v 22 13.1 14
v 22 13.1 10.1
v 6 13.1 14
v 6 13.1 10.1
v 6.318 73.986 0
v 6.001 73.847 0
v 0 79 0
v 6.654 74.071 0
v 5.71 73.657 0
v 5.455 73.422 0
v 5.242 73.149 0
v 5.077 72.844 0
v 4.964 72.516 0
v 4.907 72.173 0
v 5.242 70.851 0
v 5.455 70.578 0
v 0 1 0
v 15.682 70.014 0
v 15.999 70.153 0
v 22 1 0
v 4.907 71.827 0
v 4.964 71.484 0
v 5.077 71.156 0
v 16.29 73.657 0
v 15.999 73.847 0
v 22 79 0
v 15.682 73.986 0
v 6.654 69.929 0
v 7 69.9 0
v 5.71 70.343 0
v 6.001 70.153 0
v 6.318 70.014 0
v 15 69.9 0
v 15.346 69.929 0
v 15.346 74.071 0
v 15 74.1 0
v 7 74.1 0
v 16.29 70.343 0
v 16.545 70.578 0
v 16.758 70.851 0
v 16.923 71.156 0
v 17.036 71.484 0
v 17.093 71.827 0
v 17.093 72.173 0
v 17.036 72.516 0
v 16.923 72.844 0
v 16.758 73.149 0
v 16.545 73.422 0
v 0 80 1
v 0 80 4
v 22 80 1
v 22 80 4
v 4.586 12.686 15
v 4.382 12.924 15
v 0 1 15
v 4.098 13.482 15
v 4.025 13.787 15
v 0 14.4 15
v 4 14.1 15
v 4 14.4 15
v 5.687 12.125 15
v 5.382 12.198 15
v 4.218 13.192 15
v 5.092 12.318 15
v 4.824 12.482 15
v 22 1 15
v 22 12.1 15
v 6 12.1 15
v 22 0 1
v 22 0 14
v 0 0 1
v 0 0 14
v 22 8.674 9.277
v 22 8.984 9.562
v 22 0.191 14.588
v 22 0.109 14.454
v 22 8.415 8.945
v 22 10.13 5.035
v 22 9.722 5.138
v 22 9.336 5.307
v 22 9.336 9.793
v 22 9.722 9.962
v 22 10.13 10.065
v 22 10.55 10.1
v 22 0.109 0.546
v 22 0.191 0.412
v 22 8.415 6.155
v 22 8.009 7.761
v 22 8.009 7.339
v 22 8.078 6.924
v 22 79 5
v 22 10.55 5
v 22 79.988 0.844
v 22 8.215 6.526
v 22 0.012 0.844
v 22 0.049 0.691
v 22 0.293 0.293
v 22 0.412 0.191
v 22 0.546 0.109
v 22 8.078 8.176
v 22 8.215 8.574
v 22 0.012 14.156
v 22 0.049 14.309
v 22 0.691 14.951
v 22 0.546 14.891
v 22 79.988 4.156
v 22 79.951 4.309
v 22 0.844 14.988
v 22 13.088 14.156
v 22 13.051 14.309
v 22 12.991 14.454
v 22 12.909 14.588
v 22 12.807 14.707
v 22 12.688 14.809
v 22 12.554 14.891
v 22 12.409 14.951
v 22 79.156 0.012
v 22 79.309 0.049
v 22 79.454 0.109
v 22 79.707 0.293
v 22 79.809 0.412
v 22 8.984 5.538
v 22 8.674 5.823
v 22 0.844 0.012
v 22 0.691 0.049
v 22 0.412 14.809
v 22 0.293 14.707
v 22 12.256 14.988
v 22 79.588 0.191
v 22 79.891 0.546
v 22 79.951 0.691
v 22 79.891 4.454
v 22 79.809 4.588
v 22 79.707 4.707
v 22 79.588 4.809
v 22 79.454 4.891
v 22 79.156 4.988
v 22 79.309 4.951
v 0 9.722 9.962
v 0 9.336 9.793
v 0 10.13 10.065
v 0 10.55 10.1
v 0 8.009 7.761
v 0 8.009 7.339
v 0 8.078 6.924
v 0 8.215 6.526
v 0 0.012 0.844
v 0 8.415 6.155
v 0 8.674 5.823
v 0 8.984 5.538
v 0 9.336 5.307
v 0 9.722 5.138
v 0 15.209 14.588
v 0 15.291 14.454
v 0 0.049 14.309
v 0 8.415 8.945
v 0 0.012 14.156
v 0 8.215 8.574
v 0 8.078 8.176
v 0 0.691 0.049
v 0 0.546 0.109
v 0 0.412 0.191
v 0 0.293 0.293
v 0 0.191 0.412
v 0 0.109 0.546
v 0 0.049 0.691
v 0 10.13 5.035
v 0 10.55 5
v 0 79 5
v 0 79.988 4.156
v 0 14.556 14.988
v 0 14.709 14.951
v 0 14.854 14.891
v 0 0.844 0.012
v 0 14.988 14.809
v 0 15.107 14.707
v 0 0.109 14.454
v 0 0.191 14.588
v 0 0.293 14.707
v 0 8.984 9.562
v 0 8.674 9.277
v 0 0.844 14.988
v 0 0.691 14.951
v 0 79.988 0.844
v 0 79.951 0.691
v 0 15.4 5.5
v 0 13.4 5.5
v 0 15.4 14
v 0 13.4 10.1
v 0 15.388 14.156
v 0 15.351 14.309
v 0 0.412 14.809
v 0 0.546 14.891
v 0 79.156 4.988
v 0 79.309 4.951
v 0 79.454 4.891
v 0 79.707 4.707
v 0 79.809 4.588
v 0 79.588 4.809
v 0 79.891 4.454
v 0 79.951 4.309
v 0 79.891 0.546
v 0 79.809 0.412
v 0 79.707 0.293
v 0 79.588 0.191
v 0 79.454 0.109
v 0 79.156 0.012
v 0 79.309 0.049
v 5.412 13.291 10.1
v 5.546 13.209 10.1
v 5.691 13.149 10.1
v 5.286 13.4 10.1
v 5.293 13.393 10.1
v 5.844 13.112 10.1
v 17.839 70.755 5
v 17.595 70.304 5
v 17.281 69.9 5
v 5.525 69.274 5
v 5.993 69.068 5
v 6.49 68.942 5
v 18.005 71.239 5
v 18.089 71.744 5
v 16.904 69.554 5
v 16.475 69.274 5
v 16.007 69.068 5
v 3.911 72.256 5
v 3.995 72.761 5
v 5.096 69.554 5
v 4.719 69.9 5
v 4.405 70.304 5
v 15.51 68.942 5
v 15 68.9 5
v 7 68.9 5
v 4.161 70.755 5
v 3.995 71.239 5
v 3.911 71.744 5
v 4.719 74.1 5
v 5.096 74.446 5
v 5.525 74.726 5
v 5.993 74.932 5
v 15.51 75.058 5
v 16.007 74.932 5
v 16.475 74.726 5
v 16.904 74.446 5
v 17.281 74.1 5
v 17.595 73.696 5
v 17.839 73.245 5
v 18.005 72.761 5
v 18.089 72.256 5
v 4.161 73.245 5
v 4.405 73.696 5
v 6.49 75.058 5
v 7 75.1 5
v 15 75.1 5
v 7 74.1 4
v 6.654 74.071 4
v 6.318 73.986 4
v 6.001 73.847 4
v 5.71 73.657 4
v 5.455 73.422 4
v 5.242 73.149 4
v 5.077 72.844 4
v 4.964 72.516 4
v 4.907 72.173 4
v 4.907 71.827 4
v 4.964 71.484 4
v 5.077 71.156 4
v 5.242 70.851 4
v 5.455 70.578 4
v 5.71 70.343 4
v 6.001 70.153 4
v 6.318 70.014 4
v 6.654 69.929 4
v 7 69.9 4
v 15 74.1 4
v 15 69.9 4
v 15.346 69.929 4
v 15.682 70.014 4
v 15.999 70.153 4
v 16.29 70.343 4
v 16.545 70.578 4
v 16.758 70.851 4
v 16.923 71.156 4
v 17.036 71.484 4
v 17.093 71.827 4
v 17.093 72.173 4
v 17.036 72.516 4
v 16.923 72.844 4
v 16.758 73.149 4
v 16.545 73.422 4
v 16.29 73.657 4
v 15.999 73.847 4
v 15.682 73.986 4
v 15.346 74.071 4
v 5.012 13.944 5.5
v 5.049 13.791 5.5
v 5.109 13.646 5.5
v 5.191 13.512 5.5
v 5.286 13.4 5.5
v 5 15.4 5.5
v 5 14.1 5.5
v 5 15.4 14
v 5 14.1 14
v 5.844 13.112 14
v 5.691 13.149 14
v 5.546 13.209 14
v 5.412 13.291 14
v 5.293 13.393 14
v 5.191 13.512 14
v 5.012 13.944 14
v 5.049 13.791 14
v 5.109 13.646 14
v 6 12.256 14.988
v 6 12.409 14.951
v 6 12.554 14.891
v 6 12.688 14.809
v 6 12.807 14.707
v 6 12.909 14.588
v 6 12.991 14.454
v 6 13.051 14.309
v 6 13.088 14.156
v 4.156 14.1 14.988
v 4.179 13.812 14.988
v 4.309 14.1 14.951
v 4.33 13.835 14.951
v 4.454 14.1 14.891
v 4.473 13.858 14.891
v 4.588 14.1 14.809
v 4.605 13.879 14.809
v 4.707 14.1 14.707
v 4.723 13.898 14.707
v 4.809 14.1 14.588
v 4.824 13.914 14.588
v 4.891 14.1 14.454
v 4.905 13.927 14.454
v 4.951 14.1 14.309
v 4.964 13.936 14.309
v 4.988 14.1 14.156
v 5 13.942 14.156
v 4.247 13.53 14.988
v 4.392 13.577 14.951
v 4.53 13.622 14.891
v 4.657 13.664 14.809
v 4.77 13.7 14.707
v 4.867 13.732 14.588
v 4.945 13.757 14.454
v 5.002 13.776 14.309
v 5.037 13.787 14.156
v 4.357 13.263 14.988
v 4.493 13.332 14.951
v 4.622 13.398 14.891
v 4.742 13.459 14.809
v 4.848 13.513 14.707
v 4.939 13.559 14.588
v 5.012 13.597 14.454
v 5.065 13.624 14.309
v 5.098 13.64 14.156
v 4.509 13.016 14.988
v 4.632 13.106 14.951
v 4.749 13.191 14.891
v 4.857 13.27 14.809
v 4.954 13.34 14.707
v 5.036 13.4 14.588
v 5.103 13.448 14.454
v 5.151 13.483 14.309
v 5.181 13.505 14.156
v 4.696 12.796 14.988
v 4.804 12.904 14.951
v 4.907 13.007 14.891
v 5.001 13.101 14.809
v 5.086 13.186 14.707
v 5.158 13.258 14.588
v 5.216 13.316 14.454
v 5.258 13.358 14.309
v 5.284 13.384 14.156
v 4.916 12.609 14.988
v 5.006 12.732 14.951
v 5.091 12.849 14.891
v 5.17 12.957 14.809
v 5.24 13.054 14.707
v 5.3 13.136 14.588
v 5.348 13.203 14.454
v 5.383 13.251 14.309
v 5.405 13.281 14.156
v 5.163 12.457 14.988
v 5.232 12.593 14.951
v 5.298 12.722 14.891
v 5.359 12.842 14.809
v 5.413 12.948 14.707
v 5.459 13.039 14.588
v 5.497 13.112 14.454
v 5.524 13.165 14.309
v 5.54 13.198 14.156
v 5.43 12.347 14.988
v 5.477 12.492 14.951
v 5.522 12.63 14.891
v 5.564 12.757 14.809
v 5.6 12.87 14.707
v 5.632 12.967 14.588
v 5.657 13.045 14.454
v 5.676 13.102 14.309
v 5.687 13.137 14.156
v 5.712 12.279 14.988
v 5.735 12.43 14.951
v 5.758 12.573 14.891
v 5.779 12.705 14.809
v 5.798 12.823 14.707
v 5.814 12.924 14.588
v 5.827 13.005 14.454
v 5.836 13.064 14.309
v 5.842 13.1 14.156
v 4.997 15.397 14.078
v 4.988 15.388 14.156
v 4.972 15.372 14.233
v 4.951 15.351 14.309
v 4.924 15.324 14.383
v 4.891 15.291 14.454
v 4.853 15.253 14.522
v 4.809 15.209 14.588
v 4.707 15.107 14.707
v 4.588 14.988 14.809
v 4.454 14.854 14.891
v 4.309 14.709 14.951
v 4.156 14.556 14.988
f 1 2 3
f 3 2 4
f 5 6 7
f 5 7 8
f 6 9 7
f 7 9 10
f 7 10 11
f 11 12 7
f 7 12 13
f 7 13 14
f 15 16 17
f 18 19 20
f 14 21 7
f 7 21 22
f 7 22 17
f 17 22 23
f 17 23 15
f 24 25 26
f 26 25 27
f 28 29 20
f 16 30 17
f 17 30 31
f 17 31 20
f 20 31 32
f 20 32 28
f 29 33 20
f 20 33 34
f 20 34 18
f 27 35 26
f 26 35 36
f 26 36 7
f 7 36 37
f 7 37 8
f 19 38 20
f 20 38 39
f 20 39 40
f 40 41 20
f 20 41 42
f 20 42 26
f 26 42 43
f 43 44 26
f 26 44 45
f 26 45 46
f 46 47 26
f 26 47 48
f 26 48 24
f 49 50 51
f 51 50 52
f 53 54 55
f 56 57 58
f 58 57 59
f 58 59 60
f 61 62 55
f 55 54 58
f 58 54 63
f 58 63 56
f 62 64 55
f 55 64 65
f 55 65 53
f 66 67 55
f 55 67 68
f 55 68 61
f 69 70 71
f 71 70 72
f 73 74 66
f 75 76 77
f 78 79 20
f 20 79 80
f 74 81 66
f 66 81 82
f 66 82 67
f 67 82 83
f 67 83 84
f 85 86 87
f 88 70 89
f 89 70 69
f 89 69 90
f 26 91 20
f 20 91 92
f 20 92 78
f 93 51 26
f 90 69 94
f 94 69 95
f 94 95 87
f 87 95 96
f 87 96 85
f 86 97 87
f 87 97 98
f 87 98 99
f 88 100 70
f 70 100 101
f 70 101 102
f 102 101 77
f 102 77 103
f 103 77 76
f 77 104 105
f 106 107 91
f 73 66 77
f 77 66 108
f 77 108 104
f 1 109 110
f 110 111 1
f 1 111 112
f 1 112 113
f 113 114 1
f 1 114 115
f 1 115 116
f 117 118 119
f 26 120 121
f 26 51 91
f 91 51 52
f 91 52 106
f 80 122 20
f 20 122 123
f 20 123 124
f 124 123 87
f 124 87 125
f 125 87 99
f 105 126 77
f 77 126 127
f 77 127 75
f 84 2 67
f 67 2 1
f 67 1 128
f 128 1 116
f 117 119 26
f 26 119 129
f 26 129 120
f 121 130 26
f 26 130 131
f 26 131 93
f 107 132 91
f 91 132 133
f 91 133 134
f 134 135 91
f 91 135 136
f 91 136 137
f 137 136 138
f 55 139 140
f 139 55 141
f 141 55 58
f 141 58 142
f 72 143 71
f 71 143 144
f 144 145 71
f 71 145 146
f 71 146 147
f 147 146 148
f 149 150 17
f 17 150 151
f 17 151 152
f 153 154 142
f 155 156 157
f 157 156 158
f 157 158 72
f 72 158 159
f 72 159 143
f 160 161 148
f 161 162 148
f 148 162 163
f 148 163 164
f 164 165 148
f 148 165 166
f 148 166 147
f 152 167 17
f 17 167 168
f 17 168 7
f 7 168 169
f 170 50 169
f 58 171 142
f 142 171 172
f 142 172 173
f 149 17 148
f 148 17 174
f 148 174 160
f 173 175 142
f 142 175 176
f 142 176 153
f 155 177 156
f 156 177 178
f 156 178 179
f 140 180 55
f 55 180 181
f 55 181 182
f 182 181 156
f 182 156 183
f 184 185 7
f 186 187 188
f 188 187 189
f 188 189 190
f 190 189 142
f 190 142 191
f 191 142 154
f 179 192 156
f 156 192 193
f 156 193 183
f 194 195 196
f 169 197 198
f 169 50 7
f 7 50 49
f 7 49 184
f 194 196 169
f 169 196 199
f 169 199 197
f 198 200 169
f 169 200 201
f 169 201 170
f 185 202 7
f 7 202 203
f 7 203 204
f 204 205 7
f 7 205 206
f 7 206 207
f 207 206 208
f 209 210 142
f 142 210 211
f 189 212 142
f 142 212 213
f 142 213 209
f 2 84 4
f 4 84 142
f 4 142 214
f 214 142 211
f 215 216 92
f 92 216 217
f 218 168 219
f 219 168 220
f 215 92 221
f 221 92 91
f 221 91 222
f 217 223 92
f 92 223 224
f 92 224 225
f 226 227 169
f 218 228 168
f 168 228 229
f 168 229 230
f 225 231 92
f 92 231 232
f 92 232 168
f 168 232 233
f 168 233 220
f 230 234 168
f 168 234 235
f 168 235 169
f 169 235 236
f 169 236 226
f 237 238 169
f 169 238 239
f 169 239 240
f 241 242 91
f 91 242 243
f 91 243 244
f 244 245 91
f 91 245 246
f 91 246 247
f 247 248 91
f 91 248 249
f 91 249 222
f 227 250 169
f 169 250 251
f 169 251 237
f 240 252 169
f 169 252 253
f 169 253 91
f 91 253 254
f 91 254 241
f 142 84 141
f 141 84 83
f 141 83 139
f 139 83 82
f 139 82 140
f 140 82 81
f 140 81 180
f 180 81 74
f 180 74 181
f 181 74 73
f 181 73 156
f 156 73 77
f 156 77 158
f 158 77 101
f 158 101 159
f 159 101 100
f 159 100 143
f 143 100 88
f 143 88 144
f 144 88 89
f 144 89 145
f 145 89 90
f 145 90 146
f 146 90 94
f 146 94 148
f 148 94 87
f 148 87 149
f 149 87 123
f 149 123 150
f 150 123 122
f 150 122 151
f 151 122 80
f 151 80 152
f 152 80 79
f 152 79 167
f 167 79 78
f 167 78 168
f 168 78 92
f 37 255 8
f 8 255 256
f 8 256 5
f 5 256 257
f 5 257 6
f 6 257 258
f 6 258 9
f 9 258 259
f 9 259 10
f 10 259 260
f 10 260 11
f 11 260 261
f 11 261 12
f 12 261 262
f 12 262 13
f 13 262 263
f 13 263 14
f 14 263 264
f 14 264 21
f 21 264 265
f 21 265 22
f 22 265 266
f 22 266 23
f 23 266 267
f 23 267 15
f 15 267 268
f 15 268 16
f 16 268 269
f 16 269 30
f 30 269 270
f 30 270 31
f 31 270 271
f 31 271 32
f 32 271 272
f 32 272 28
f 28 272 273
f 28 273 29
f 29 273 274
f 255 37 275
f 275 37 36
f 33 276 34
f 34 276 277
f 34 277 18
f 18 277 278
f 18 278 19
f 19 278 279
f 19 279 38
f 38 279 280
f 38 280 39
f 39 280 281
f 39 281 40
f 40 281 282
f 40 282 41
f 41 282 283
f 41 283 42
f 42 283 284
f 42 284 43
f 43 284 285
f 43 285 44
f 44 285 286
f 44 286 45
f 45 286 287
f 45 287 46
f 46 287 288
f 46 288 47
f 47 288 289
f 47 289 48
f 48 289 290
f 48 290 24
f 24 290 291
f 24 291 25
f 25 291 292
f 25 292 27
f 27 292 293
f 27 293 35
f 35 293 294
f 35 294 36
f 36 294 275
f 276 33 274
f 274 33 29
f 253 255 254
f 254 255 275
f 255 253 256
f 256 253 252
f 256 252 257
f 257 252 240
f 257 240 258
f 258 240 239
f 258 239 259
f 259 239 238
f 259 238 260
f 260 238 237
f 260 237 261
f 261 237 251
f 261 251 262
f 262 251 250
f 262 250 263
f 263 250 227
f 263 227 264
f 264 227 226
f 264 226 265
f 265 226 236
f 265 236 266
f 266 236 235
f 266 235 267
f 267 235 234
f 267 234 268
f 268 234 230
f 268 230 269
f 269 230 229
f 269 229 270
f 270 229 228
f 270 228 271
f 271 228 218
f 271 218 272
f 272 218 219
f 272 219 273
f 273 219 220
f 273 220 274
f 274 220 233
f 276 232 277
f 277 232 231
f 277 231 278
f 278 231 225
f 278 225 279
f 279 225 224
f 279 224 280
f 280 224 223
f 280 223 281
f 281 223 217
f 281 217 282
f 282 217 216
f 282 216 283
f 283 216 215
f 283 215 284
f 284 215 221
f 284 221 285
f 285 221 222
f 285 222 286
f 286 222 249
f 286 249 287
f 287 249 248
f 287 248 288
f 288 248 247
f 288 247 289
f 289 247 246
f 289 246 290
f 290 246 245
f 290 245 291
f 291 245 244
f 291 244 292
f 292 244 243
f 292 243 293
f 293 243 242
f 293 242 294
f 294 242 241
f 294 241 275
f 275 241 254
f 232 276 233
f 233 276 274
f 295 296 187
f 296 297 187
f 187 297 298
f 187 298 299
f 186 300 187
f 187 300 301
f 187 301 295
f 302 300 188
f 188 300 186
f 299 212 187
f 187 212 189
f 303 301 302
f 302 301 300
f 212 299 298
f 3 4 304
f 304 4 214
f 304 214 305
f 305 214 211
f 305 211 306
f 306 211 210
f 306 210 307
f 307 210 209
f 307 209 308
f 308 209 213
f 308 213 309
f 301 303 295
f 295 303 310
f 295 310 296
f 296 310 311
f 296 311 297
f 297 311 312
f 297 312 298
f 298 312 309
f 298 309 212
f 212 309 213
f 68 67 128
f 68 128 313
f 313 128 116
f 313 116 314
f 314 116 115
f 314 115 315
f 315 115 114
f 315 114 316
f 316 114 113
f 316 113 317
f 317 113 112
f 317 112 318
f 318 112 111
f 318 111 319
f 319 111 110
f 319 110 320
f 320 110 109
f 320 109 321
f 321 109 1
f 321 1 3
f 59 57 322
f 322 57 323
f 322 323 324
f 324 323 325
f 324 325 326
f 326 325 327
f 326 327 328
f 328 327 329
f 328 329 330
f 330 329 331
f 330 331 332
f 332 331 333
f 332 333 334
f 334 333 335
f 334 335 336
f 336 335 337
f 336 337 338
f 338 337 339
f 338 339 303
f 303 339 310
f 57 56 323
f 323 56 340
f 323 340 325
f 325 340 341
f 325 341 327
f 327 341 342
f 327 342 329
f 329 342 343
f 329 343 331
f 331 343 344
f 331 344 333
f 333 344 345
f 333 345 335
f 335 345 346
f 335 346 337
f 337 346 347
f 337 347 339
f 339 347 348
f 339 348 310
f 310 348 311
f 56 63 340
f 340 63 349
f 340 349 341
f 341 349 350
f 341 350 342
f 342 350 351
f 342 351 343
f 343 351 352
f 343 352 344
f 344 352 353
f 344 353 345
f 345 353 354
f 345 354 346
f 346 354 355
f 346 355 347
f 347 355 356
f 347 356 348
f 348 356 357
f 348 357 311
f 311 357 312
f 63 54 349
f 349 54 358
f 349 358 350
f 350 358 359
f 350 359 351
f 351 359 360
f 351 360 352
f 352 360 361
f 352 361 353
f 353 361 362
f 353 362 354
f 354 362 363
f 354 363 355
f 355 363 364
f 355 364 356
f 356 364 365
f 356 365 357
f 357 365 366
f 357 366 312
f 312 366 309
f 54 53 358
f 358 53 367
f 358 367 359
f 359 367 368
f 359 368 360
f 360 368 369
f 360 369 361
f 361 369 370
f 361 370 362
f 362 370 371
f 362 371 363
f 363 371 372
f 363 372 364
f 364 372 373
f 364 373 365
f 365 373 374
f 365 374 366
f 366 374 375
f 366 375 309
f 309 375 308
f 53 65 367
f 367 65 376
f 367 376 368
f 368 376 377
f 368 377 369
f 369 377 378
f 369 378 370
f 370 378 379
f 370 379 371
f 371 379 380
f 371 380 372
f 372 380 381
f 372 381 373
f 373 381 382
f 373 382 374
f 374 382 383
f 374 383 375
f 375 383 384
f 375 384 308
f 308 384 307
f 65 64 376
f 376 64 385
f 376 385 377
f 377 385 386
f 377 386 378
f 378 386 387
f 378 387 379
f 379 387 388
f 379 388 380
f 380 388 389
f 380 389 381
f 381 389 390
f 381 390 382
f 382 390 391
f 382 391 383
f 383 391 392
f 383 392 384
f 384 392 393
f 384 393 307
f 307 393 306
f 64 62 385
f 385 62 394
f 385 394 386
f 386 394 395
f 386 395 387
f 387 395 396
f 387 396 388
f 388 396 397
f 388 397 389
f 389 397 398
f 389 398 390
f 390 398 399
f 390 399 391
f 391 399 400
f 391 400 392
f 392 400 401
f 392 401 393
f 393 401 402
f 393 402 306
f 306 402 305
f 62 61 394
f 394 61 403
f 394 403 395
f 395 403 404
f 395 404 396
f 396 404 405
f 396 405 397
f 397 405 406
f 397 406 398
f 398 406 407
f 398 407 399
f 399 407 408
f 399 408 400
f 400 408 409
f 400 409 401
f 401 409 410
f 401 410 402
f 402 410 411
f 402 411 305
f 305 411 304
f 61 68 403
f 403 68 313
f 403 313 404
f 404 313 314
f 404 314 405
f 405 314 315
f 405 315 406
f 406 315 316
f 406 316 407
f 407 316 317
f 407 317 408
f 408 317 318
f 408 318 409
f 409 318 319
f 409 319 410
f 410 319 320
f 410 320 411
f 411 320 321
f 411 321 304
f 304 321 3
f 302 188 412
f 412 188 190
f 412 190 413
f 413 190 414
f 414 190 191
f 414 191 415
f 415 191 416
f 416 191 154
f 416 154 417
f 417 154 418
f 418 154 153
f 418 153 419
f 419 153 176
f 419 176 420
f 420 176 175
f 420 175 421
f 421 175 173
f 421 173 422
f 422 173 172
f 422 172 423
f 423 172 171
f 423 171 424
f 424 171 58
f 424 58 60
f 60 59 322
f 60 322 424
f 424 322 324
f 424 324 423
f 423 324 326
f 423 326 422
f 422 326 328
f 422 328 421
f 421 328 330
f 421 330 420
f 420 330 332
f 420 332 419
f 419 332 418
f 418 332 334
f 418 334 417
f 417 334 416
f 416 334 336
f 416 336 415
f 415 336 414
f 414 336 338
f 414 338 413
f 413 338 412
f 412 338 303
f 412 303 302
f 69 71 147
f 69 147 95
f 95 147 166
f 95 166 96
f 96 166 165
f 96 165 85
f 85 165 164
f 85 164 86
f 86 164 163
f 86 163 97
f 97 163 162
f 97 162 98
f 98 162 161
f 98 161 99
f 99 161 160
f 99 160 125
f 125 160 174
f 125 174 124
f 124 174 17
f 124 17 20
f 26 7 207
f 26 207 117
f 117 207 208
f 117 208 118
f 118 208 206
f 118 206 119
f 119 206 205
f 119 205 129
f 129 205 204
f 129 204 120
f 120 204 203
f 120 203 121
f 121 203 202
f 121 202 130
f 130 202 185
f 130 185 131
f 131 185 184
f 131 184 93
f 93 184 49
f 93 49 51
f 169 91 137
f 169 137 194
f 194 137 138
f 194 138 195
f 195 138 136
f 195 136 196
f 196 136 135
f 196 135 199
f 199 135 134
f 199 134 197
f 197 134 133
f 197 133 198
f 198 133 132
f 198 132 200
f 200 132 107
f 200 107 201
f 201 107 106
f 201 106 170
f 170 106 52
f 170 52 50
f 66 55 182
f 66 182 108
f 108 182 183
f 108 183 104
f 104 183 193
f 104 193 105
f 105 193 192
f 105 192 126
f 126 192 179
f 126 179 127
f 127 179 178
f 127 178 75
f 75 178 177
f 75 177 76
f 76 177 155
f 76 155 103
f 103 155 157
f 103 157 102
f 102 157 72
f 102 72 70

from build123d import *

# Parameters (mm, degrees)
SKETCH1_W           = 15
SKETCH1_H           = 80
BOSS_EXTRUDE1_DEPTH = 22
CUT_EXTRUDE1_DEPTH  = 23
CUT_EXTRUDE2_DEPTH  = 6
CHAMFER1_SIZE       = 1
SKETCH6_W           = 4.9
SKETCH6_H           = 0.3
BOSS_EXTRUDE2_DEPTH = 5
FILLET2_R           = 1


with BuildPart() as part:
    # Sketch1 → Boss-Extrude1 (new body)
    with BuildSketch(Plane(origin=(0, 0, 0), x_dir=(0, 0, -1), z_dir=(1, 0, 0))):
        with Locations((-7.5, 40)):
            Rectangle(SKETCH1_W, SKETCH1_H)
    extrude(amount=BOSS_EXTRUDE1_DEPTH)

    # Sketch2 → Cut-Extrude1 (cut, through all)
    with BuildSketch(Plane(origin=(22, 0, 0), x_dir=(0, 0, -1), z_dir=(1, 0, 0))):
        with BuildLine():
            Line((-15, 80), (-15, 13.1))
            Line((-15, 13.1), (-10.1, 13.1))
            Line((-10.1, 13.1), (-10.1, 10.55))
            ThreePointArc((-10.1, 10.55), (-7.55, 8), (-5, 10.55))
            Line((-5, 10.55), (-5, 80))
            Line((-5, 80), (-15, 80))
        make_face()
    extrude(amount=-CUT_EXTRUDE1_DEPTH, mode=Mode.SUBTRACT)

    # Sketch3 → Cut-Extrude2 (cut, through all)
    with BuildSketch(Plane.XY.offset(5)):
        with BuildLine():
            Line((7, 74.1), (15, 74.1))
            ThreePointArc((15, 74.1), (17.1, 72), (15, 69.9))
            Line((15, 69.9), (7, 69.9))
            ThreePointArc((7, 69.9), (4.9, 72), (7, 74.1))
        make_face()
    extrude(amount=-CUT_EXTRUDE2_DEPTH, mode=Mode.SUBTRACT)

    # Chamfer1
    chamfer1_edges = [part.edges().sort_by_distance(p)[0] for p in [
        (4.9, 72, 5),
        (11, 69.9, 5),
        (17.1, 72, 5),
        (11, 74.1, 5),
    ]]
    chamfer(chamfer1_edges, length=CHAMFER1_SIZE)

    # Sketch6 → Boss-Extrude2 (add)
    with BuildSketch(Plane.ZY):
        Polygon((10.1, 13.4), (15, 13.4), (15, 15.4), (5.5, 15.4), (5.5, 13.4), align=None)
        with Locations((12.55, 13.25)):
            Rectangle(SKETCH6_W, SKETCH6_H)
    extrude(amount=-BOSS_EXTRUDE2_DEPTH)

    # Fillet2
    fillet2_edges = [part.edges().sort_by_distance(p)[0] for p in [
        (5, 14.25, 15),
        (11, 0, 0),
        (11, 80, 0),
        (11, 80, 5),
        (13.5, 13.1, 15),
        (11, 0, 15),
        (2.5, 15.4, 15),
        (5, 13.1, 12.55),
    ]]
    fillet(fillet2_edges, radius=FILLET2_R)


solid = part.part
